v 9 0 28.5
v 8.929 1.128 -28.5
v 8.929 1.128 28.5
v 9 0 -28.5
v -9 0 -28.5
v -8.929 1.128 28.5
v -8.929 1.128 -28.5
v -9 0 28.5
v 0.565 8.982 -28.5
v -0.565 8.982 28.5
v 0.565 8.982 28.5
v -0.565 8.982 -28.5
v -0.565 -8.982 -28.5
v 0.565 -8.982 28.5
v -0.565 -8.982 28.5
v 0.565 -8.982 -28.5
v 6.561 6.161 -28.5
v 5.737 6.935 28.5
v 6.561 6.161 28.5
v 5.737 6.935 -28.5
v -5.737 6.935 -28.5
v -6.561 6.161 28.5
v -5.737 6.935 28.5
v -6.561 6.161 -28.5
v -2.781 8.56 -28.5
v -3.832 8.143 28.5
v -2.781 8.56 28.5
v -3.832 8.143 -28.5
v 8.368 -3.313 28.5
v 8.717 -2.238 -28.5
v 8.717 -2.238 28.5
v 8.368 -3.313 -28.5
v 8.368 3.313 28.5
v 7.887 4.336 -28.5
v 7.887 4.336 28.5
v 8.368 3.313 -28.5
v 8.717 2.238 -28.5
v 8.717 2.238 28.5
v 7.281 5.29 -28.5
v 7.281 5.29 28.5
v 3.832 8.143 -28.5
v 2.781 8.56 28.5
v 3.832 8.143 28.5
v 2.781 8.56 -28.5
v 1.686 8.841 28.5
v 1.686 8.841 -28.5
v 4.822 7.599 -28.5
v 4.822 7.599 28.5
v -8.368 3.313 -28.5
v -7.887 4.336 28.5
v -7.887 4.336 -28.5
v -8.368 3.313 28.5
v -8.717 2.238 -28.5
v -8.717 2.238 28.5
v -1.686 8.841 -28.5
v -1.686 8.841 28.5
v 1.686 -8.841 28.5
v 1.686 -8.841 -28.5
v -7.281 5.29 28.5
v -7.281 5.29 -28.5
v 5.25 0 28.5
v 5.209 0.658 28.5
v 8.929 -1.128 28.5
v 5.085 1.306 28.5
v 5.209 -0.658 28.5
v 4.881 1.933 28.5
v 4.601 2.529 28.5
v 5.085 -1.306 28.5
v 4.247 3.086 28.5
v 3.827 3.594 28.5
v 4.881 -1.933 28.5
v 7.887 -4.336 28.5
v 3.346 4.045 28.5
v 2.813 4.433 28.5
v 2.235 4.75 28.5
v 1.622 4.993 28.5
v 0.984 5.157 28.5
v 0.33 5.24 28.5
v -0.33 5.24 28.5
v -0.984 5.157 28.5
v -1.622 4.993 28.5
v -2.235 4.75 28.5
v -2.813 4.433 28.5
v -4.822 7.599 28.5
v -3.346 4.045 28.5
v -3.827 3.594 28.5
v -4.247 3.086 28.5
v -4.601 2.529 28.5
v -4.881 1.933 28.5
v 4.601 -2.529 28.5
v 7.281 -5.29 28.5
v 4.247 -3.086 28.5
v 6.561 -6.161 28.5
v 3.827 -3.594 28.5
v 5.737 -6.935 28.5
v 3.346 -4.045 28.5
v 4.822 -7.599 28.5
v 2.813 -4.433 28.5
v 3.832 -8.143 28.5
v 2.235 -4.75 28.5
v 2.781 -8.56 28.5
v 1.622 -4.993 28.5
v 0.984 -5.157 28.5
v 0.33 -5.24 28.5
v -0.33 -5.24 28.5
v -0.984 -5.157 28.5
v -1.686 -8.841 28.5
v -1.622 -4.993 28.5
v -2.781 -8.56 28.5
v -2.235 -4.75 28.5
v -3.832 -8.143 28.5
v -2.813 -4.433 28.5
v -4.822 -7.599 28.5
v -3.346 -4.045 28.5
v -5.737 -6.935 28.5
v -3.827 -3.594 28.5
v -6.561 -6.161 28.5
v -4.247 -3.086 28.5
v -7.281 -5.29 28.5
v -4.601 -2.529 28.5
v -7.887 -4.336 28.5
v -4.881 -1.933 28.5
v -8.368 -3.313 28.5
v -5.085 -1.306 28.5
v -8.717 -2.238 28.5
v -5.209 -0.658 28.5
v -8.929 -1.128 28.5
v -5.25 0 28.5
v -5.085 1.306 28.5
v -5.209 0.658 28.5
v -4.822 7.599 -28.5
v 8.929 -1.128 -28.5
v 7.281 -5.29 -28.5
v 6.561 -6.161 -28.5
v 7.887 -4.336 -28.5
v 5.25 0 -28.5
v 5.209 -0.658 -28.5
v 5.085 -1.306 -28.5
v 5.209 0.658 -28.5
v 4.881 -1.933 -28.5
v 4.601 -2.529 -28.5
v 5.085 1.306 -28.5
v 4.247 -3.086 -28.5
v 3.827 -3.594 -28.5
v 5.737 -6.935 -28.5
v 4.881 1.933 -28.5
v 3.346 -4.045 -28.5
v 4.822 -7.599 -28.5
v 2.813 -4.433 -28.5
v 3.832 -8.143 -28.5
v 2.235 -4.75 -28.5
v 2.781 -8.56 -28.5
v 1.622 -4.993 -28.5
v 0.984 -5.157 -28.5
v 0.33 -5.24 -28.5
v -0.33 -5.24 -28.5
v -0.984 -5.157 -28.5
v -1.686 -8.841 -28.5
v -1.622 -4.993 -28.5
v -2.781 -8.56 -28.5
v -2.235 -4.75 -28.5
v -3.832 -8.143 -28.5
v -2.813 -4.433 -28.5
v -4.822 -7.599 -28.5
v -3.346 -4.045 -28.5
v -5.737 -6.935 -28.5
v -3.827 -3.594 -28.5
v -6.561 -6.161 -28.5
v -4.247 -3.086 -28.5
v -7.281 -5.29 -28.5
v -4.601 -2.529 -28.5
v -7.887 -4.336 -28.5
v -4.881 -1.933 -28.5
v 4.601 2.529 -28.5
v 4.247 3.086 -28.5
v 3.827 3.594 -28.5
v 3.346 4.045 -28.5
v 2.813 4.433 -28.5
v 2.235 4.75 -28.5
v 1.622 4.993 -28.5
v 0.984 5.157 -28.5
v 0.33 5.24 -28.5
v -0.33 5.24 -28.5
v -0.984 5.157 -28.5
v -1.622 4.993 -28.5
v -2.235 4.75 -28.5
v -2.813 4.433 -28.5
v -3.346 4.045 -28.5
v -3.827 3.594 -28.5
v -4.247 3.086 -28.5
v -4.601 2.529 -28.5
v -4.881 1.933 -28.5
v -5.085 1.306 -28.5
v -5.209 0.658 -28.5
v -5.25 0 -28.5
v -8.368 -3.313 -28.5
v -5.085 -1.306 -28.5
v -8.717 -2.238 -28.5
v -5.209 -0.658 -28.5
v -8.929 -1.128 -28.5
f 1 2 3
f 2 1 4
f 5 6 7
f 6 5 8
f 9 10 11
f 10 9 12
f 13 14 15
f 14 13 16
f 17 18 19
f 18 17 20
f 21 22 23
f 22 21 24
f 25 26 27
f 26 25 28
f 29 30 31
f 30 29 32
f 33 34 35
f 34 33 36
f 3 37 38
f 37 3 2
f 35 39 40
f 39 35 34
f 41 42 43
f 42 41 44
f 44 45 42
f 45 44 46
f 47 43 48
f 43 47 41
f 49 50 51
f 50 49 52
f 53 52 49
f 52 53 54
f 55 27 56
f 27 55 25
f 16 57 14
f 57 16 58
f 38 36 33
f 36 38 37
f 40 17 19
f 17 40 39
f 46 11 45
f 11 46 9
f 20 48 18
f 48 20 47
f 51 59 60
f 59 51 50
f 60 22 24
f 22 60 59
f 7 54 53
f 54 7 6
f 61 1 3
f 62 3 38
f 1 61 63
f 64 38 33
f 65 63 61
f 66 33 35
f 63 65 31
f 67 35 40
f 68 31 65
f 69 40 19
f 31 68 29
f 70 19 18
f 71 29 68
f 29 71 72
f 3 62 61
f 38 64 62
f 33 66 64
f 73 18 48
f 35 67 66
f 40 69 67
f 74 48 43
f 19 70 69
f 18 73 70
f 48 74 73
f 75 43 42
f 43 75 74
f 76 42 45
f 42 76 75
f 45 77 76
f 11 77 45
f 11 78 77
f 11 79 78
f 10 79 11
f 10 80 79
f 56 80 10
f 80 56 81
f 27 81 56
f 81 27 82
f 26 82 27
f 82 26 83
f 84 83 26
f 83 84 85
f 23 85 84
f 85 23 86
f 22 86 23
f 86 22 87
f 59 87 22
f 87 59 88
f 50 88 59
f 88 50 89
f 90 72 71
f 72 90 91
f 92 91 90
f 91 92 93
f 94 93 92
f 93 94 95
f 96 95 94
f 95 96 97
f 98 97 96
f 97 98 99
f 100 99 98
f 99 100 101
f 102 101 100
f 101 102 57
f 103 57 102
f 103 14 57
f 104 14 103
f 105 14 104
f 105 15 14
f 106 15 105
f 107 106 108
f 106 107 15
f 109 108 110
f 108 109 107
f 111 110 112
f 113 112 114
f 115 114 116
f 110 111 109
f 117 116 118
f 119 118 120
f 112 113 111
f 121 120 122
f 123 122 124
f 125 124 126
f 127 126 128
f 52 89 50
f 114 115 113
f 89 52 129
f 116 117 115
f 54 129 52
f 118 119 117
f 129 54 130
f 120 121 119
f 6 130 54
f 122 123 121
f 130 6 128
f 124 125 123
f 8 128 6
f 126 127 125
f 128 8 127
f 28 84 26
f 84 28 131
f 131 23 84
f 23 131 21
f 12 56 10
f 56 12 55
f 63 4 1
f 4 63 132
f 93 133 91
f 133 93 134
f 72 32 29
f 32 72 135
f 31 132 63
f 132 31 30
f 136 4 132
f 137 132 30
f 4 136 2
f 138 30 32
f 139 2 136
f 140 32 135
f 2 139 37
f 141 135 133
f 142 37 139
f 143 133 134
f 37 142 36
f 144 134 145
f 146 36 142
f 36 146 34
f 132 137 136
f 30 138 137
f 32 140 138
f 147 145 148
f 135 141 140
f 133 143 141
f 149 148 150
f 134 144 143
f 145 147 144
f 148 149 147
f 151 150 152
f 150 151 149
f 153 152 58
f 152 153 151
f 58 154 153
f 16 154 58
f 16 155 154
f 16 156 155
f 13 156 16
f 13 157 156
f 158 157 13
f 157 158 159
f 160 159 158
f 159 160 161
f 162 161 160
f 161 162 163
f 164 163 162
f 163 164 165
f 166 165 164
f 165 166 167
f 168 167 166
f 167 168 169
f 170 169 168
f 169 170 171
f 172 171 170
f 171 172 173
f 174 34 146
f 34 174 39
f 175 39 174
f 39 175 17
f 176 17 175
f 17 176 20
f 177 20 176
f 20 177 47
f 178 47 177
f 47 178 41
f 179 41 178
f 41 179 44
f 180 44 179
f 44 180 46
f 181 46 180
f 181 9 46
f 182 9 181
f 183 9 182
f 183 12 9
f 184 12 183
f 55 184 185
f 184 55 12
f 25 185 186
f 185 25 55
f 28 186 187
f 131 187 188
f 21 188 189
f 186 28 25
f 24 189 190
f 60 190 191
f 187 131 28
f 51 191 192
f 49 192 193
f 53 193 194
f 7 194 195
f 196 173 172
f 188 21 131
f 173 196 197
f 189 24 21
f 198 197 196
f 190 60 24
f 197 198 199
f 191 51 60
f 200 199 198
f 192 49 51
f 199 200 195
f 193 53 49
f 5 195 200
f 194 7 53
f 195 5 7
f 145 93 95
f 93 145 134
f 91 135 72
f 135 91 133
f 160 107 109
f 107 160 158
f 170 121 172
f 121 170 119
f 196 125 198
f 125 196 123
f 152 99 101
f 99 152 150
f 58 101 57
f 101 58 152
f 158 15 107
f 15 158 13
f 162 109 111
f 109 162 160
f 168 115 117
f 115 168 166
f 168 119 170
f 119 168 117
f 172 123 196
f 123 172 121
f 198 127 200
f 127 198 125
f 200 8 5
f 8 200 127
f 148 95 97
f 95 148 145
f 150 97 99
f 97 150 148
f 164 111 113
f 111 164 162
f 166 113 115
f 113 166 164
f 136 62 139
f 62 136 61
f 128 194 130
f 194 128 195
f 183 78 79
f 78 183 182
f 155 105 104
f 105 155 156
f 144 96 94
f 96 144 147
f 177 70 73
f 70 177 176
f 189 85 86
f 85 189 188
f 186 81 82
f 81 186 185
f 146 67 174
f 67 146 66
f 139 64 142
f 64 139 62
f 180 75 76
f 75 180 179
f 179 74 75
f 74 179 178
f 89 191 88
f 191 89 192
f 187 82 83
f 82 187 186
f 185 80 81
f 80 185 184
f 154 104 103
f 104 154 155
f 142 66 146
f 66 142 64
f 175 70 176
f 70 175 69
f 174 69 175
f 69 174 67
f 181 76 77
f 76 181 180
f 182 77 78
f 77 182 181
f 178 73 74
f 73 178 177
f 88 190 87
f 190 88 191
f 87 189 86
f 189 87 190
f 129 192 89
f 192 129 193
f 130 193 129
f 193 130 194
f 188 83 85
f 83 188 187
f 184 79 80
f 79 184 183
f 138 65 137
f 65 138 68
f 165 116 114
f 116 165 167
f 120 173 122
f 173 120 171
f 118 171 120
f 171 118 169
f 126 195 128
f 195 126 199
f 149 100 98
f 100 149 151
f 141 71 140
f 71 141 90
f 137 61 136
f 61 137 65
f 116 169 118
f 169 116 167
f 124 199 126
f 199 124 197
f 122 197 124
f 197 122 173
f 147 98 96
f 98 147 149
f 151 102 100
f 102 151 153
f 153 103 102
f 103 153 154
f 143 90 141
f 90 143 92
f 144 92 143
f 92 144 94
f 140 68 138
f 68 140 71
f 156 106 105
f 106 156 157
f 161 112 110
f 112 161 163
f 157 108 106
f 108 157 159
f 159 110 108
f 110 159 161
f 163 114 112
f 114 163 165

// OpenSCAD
$fn = 50;


difference() {
	union() {
		translate(v = [0, 0, -28.5000000000]) {
			cylinder(h = 57, r = 9.0000000000);
		}
	}
	union() {
		translate(v = [0, 0, -100.0000000000]) {
			cylinder(h = 200, r = 5.2500000000);
		}
	}
}
